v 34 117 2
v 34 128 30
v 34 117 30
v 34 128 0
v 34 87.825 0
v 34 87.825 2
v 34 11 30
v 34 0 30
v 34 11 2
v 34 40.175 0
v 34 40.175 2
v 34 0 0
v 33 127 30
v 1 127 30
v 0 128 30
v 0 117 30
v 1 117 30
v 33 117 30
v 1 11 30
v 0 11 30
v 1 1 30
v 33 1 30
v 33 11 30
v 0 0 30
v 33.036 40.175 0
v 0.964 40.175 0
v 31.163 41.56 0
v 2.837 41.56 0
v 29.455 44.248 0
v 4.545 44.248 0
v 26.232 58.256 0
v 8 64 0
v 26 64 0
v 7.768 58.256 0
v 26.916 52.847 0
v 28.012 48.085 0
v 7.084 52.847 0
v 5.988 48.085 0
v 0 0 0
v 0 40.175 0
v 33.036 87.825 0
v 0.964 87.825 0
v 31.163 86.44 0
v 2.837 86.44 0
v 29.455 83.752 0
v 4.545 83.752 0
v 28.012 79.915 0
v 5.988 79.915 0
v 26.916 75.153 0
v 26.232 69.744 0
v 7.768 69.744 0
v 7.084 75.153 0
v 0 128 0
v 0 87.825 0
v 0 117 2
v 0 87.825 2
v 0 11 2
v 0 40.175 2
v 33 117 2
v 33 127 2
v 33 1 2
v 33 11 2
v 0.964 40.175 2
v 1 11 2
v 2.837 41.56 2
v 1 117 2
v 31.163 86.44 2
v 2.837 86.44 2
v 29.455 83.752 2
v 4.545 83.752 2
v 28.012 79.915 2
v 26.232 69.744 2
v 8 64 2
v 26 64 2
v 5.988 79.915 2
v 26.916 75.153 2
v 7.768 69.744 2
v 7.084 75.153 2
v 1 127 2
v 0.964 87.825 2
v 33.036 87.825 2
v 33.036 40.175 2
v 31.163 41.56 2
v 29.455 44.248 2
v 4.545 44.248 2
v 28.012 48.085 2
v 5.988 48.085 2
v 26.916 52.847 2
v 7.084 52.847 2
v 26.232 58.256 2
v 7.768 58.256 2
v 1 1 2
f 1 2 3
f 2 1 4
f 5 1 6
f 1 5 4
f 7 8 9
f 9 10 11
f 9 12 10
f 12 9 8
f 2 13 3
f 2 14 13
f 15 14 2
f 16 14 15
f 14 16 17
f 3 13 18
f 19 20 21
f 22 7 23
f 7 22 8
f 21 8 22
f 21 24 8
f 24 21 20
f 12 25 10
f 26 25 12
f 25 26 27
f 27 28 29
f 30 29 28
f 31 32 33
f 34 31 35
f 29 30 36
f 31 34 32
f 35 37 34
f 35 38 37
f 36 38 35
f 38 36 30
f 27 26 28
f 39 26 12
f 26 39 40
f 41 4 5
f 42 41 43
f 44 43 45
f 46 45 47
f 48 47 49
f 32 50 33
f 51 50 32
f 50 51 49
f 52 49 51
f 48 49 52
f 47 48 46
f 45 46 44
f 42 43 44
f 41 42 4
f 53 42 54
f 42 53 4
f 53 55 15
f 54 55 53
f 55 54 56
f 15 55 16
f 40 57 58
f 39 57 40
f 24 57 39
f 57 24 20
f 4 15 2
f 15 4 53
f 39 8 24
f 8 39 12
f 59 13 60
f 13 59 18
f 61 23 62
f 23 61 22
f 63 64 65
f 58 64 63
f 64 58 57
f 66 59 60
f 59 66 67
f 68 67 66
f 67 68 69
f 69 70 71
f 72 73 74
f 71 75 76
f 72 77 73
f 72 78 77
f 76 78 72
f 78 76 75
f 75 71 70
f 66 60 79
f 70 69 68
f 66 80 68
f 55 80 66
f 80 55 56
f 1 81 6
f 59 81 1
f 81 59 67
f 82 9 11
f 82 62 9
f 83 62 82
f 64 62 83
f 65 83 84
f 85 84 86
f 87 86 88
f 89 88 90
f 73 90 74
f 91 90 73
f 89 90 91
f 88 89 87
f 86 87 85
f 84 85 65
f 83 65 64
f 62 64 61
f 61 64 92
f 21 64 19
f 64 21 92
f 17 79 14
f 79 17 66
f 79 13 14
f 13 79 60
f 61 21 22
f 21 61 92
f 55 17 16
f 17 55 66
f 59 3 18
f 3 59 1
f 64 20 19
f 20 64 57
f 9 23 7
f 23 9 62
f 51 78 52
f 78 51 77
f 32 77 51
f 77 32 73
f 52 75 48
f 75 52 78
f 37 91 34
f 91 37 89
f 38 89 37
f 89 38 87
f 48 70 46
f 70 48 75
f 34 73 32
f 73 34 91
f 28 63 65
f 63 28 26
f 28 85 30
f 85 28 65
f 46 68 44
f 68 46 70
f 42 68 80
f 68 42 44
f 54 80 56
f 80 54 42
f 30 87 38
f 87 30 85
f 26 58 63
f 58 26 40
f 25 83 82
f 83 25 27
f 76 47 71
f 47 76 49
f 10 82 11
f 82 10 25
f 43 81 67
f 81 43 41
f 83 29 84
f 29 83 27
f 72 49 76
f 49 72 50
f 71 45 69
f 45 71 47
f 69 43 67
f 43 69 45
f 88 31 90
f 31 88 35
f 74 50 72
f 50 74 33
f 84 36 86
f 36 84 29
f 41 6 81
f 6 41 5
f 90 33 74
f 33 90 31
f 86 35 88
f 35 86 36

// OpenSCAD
SL_width  = 32;
//SL_length = 65; // Short
//SL_length = 97; // Medium
SL_length = 126; // Long
SL_height = 28;

//Finger support -> short:6 else:8
FINGER = 8;	

Wall_power  = 1;
Floor_power = 2;
Holder_power = 10;


difference(){
	cube([ SL_width+2*Wall_power , SL_length+2*Wall_power , SL_height+Floor_power ]);
	translate([ Wall_power , Wall_power , Floor_power ]) cube([ SL_width , SL_length , SL_height+1 ]); // MAIN STORAGE
	translate([ -1 , Wall_power+Holder_power , Floor_power ]) cube([ 2*SL_width , SL_length-2*Holder_power , SL_height+1 ]); // WALL BREAK
	
	translate([  0 , Wall_power+0.5*SL_length , -1 ]) scale([1,3,1]) cylinder( Floor_power+2, r=FINGER ); // Finger support
	translate([  2*Wall_power+SL_width , Wall_power+0.5*SL_length , -1 ]) scale([1,3,1]) cylinder( Floor_power+2, r=FINGER );
};
